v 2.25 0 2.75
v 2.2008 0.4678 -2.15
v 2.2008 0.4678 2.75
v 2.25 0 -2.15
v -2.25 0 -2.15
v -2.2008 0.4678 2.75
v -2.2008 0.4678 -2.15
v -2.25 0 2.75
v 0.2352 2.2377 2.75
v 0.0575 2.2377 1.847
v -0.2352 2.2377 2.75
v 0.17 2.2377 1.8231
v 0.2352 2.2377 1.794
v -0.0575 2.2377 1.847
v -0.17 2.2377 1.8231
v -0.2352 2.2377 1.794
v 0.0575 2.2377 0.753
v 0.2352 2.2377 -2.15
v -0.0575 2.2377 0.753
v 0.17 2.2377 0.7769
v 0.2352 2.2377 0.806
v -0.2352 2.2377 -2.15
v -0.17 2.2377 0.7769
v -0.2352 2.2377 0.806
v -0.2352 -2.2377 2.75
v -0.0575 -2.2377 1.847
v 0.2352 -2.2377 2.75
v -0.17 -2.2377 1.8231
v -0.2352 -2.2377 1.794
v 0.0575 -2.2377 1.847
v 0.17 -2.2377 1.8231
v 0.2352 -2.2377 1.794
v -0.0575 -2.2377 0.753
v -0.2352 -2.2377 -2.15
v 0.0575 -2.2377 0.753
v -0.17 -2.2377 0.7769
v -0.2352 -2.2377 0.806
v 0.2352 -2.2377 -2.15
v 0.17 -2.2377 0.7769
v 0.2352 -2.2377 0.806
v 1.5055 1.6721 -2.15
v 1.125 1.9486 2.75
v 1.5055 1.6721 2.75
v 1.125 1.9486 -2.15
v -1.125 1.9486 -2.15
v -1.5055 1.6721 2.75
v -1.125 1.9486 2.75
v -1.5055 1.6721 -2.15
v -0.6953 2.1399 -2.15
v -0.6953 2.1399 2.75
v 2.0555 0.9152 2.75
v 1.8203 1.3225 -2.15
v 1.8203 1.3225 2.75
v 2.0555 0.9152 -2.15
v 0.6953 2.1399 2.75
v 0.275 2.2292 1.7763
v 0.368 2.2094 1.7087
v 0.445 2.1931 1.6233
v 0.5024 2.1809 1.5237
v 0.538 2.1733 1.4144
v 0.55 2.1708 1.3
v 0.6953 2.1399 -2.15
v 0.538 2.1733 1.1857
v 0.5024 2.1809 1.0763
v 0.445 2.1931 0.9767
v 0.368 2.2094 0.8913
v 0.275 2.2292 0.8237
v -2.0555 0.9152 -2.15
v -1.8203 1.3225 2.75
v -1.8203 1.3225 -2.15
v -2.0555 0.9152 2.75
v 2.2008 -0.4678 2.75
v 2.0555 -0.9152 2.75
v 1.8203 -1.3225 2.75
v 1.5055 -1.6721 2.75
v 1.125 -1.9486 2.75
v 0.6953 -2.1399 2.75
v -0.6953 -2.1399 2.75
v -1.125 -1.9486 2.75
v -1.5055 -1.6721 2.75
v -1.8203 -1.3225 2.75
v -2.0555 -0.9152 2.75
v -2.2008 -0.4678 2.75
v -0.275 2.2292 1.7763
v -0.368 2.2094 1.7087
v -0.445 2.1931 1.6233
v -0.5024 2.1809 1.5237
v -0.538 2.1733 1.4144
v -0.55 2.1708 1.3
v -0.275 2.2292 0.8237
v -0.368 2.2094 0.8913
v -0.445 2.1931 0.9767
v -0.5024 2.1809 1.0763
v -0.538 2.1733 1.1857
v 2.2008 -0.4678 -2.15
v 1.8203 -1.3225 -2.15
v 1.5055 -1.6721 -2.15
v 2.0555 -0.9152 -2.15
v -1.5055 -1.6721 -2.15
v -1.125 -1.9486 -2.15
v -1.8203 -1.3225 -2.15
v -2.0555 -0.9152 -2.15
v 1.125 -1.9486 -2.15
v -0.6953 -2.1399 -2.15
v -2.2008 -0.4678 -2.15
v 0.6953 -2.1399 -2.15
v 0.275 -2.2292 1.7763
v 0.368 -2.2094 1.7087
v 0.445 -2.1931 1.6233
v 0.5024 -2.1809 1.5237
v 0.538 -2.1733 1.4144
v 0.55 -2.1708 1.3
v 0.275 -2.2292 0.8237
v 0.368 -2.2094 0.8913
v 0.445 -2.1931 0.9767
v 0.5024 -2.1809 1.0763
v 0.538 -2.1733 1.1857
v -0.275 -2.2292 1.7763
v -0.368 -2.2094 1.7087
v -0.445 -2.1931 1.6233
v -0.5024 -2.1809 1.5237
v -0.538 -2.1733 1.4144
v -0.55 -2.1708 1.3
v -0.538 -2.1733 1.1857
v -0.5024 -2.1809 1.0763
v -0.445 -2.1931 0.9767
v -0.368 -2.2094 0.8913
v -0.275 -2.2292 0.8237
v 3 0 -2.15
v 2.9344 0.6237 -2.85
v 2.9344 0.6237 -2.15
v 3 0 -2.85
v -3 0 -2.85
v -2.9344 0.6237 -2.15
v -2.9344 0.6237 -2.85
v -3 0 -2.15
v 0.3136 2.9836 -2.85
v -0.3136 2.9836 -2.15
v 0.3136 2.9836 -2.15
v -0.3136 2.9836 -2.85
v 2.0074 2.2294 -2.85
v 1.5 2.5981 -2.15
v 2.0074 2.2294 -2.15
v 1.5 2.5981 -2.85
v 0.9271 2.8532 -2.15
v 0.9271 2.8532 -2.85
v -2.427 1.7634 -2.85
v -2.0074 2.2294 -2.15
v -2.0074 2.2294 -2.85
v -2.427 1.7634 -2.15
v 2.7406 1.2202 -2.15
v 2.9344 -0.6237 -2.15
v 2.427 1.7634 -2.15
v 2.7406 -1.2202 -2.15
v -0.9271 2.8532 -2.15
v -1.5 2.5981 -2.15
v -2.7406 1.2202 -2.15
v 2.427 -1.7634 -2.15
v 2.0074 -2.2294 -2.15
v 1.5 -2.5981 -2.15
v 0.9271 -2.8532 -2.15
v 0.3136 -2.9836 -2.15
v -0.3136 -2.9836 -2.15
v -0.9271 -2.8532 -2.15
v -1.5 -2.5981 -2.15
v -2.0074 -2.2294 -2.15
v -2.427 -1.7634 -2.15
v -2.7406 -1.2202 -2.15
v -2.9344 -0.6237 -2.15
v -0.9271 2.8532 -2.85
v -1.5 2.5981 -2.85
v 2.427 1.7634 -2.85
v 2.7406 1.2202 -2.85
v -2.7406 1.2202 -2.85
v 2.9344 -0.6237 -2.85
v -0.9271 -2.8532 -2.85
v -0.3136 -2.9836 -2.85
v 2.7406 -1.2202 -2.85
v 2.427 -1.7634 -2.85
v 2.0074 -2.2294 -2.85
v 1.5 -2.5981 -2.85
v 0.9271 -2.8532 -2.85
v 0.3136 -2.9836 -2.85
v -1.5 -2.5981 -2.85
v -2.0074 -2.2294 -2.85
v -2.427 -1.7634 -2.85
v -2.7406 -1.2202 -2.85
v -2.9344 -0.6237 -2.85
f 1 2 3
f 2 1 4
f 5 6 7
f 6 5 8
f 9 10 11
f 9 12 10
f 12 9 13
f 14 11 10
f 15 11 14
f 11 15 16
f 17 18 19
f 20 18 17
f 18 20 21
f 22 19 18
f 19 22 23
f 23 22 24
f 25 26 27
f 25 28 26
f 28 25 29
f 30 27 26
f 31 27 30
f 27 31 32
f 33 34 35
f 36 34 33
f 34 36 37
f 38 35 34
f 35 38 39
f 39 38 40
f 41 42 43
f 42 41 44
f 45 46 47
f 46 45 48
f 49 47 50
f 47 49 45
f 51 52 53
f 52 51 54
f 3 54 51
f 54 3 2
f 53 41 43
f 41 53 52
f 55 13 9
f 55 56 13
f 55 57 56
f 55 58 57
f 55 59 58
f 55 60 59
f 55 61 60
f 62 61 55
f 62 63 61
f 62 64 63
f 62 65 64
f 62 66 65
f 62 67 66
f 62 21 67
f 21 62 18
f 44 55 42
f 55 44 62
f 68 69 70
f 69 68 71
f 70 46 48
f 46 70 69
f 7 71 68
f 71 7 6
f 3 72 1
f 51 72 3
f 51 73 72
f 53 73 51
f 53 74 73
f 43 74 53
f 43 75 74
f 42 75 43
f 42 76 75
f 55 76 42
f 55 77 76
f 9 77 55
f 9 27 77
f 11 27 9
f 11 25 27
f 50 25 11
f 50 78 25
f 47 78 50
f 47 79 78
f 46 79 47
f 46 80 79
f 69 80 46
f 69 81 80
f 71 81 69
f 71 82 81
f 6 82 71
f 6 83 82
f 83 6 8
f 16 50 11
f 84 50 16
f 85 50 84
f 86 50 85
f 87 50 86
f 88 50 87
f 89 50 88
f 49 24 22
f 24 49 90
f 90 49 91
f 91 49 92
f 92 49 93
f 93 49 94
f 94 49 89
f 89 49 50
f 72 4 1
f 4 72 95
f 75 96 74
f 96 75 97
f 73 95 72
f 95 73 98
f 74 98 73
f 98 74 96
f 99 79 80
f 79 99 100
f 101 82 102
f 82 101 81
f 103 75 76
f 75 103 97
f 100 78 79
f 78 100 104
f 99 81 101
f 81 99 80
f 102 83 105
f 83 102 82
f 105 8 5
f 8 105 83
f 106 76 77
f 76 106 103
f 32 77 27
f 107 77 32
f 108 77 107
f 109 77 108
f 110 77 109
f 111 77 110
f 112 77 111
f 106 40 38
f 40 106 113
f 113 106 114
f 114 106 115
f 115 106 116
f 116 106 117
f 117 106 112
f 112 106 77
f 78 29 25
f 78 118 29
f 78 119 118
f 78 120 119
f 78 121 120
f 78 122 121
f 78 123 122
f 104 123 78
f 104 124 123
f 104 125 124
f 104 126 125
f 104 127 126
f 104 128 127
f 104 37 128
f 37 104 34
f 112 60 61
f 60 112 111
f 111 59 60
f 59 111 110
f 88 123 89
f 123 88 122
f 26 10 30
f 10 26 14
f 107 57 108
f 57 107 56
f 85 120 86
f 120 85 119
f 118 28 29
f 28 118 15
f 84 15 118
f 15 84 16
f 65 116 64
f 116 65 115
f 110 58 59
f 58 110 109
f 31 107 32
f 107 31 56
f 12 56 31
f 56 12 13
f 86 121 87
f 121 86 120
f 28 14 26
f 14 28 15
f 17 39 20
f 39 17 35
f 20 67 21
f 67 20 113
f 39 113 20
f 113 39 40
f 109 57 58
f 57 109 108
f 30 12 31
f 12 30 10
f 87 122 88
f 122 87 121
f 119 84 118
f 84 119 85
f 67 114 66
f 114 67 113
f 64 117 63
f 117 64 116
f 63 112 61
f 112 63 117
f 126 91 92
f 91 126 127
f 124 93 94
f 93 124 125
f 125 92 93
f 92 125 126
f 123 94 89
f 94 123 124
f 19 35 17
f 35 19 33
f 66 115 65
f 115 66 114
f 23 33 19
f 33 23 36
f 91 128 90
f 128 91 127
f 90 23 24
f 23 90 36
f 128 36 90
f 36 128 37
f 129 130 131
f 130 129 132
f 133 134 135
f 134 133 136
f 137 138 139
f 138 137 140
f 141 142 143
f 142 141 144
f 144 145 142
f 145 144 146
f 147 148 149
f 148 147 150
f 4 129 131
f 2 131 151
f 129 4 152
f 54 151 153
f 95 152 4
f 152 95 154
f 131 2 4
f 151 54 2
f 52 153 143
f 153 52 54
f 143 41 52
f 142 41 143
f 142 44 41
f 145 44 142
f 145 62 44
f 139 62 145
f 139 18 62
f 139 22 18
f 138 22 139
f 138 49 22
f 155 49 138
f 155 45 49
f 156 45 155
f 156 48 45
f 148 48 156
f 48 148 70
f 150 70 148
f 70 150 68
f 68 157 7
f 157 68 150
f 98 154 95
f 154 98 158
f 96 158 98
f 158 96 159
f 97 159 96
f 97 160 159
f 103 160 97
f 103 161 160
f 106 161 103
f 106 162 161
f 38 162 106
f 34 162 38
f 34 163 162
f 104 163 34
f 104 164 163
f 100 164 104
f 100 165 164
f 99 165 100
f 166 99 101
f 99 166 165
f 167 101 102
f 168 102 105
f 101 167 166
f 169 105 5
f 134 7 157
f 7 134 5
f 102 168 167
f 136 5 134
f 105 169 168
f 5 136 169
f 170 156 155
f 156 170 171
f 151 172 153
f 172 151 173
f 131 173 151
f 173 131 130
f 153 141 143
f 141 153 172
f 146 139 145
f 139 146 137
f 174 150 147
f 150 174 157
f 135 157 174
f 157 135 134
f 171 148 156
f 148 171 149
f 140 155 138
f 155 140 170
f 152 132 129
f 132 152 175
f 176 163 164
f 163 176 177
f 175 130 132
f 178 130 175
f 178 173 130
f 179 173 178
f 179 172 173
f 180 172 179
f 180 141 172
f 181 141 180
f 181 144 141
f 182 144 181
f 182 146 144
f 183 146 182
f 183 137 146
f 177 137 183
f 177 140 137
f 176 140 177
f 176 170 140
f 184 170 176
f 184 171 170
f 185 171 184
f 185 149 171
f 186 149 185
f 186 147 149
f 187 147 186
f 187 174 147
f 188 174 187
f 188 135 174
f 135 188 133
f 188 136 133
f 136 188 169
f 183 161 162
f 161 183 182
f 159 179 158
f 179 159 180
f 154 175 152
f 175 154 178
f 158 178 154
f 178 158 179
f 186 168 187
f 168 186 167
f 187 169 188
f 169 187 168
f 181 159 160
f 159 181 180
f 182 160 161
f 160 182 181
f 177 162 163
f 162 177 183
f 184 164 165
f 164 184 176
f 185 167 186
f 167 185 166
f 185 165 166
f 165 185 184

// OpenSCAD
// Massstab-Klammmer


$fn=30;
translate([0,0,-2.5])
cylinder(d=6,h=0.7,center=true);



difference() {
    $fn=30;
    cylinder(d=4.5,h=5.5,center=true);
    translate([0,0,1.3])
    rotate([90,0,0]) 
    cylinder(d=1.1,h=5, center=true);
}
